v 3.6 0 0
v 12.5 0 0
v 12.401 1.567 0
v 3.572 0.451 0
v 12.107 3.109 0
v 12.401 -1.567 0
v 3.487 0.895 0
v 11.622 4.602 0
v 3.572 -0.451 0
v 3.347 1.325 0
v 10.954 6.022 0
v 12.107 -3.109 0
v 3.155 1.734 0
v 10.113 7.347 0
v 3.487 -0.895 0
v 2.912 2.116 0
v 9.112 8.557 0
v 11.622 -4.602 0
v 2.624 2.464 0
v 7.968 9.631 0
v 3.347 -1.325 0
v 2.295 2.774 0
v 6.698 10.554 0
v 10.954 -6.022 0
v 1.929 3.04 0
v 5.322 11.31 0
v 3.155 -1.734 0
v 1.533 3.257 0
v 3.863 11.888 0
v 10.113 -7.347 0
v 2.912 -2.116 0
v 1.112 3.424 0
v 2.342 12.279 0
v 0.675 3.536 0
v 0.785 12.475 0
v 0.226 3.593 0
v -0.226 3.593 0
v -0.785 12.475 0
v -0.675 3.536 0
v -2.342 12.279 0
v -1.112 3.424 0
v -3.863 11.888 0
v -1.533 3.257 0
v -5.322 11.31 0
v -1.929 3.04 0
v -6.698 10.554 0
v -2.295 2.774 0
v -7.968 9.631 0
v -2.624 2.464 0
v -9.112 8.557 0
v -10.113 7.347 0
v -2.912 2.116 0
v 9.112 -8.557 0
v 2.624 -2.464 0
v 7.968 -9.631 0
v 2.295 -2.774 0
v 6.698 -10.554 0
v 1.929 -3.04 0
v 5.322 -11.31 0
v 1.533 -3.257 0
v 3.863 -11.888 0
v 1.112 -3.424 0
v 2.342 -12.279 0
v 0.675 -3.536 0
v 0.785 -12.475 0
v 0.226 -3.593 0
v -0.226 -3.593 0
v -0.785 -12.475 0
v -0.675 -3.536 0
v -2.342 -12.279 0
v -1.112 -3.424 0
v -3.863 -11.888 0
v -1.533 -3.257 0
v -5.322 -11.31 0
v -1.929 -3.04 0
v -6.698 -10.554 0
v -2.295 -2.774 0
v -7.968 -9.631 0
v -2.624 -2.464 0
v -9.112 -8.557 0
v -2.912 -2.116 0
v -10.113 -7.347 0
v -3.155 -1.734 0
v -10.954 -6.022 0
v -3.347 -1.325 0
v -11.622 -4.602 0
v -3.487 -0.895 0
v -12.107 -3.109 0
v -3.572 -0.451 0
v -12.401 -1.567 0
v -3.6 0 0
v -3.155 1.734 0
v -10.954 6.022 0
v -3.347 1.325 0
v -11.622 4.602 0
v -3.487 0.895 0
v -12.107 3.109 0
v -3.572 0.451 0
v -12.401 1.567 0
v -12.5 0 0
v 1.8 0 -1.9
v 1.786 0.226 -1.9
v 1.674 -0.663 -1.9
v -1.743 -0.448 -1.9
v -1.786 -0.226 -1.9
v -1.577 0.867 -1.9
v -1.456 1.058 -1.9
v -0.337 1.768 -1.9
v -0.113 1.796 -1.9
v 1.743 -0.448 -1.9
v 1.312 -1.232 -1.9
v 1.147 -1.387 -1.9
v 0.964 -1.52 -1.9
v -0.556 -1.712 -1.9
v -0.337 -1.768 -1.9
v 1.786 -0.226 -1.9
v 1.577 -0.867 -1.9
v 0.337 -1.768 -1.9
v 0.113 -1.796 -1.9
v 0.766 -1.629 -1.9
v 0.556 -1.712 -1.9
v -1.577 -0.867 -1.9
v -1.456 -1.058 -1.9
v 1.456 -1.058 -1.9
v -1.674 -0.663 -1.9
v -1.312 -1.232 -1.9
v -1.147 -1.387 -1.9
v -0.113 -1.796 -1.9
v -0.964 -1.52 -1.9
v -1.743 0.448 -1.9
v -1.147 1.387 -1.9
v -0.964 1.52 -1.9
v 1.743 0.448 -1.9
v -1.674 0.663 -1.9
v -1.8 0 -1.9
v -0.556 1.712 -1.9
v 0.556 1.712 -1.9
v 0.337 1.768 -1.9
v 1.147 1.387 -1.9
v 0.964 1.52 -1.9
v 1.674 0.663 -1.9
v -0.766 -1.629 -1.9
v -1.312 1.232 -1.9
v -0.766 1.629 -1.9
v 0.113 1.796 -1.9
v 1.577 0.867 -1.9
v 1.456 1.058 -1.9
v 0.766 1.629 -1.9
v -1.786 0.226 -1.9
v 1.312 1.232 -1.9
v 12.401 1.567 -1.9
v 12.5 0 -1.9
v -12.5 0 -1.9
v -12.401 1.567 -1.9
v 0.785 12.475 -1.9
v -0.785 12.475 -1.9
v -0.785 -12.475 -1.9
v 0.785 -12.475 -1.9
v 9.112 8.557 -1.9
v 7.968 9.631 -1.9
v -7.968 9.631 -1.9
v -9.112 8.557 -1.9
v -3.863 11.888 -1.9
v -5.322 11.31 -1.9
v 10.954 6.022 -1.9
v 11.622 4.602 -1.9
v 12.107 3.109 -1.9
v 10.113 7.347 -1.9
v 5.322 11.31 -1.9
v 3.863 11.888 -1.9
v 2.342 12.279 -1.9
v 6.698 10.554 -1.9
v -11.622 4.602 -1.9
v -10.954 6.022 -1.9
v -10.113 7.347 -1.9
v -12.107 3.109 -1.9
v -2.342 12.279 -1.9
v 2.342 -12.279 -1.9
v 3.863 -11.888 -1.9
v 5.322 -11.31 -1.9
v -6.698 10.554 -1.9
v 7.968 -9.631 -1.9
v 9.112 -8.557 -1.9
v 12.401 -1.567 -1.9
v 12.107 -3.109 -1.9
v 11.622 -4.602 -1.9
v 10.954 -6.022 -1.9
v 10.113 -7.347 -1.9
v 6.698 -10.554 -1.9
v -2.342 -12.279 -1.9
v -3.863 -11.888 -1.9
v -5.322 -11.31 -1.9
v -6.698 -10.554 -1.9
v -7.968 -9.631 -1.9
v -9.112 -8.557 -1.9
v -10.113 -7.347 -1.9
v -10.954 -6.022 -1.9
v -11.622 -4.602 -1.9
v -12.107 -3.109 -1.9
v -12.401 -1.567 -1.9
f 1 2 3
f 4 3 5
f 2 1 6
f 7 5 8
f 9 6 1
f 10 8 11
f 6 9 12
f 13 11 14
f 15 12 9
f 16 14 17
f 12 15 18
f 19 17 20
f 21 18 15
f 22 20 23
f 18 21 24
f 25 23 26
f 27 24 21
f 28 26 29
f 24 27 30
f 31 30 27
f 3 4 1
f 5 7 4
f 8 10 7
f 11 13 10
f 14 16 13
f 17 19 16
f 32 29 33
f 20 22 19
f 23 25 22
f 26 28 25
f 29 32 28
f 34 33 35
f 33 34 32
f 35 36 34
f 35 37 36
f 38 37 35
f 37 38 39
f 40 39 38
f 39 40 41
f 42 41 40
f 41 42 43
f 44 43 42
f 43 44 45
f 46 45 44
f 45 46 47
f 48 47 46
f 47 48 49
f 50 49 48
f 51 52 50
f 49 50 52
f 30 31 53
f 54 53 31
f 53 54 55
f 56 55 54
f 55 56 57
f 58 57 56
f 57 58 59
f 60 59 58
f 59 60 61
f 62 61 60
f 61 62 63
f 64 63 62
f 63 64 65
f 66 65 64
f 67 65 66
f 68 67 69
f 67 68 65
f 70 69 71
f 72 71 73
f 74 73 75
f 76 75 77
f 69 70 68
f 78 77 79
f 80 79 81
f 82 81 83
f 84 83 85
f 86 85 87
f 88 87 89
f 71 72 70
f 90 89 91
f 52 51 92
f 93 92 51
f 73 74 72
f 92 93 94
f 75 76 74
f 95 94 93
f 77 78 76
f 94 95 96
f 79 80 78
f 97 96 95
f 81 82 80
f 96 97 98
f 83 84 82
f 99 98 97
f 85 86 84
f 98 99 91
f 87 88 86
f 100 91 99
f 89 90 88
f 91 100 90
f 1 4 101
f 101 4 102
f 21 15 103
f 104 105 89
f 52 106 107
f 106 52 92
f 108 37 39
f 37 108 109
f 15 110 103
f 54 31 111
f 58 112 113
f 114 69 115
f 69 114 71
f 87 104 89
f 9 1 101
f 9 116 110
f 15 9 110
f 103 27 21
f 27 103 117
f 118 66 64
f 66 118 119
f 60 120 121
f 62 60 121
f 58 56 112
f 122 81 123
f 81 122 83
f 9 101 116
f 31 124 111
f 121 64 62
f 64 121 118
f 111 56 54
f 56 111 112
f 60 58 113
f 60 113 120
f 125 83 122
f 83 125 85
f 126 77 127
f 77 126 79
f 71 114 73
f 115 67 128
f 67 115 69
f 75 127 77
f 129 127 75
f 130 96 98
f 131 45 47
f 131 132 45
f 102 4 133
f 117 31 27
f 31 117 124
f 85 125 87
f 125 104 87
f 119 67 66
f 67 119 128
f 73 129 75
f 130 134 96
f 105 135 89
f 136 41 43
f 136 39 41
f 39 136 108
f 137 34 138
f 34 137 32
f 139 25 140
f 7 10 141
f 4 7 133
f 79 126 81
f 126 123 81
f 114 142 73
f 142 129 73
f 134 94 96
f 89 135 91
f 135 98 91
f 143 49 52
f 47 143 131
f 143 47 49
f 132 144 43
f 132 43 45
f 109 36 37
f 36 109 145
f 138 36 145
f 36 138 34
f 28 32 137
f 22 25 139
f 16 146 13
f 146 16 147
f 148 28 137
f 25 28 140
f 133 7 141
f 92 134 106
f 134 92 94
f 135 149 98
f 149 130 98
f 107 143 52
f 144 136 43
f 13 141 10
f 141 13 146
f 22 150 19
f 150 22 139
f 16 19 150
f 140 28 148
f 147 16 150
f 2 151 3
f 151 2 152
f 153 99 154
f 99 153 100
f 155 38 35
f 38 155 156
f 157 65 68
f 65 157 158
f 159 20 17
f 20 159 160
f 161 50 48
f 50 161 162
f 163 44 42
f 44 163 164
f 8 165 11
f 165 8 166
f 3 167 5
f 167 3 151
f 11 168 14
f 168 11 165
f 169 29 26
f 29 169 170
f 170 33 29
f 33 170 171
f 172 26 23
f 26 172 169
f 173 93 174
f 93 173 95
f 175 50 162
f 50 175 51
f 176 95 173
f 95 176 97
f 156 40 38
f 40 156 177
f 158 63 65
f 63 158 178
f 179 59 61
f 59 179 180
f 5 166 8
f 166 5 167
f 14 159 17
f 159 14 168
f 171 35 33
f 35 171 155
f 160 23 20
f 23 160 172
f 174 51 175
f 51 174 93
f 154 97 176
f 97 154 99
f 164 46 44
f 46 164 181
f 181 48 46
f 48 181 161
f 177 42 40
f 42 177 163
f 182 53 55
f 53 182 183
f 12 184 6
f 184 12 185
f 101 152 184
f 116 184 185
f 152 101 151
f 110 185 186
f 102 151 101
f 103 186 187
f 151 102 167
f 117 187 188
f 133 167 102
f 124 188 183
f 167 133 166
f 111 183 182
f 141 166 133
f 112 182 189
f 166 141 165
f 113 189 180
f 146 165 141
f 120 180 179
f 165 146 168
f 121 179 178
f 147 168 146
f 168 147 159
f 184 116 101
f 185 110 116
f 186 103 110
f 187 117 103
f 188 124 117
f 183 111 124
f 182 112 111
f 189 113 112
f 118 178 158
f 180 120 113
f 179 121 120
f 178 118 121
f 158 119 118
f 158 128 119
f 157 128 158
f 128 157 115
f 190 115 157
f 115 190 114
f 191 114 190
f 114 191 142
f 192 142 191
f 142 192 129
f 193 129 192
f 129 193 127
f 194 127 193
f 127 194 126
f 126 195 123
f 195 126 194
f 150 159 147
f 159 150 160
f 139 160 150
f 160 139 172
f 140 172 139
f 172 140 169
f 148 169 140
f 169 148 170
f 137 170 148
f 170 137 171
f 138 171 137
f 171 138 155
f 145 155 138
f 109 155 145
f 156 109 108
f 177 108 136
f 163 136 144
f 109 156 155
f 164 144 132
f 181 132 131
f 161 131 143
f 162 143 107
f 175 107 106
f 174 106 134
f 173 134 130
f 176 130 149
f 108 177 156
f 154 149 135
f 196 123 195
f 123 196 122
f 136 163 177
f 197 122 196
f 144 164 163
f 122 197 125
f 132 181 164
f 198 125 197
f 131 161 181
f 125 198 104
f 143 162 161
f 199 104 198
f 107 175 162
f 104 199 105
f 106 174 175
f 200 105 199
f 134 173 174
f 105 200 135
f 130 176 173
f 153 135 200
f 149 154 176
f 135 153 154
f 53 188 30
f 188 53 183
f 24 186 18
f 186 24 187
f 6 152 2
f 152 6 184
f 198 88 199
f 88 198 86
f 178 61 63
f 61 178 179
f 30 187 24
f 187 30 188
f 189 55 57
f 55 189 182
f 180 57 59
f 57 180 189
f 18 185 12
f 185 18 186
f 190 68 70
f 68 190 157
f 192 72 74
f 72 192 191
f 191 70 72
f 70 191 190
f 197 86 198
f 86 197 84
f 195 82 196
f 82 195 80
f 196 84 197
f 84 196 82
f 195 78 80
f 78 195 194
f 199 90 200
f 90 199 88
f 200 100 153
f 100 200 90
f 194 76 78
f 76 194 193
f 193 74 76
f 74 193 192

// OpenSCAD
$fn = 50;


difference() {
	union() {
		translate(v = [0, 0, -1.9000000000]) {
			cylinder(h = 1.9000000000, r = 12.5000000000);
		}
	}
	union() {
		translate(v = [0, 0, 0]) {
			rotate(a = [0, 0, 0]) {
				difference() {
					union() {
						translate(v = [0, 0, -4.9000000000]) {
							cylinder(h = 4.9000000000, r = 1.5000000000);
						}
						translate(v = [0, 0, -1.9000000000]) {
							cylinder(h = 1.9000000000, r1 = 1.8000000000, r2 = 3.6000000000);
						}
						translate(v = [0, 0, -4.9000000000]) {
							cylinder(h = 4.9000000000, r = 1.8000000000);
						}
						translate(v = [0, 0, -4.9000000000]) {
							cylinder(h = 4.9000000000, r = 1.5000000000);
						}
					}
					union();
				}
			}
		}
	}
}
